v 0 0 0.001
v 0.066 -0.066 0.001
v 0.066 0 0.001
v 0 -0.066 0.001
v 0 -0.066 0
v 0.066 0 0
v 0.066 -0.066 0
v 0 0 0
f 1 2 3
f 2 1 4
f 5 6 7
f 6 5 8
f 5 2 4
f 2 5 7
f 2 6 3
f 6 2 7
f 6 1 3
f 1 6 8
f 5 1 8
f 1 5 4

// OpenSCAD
module marker()
{
    translate([0.0,-0.066,0]) cube([0.066,0.066,0.001]);
}
marker();
